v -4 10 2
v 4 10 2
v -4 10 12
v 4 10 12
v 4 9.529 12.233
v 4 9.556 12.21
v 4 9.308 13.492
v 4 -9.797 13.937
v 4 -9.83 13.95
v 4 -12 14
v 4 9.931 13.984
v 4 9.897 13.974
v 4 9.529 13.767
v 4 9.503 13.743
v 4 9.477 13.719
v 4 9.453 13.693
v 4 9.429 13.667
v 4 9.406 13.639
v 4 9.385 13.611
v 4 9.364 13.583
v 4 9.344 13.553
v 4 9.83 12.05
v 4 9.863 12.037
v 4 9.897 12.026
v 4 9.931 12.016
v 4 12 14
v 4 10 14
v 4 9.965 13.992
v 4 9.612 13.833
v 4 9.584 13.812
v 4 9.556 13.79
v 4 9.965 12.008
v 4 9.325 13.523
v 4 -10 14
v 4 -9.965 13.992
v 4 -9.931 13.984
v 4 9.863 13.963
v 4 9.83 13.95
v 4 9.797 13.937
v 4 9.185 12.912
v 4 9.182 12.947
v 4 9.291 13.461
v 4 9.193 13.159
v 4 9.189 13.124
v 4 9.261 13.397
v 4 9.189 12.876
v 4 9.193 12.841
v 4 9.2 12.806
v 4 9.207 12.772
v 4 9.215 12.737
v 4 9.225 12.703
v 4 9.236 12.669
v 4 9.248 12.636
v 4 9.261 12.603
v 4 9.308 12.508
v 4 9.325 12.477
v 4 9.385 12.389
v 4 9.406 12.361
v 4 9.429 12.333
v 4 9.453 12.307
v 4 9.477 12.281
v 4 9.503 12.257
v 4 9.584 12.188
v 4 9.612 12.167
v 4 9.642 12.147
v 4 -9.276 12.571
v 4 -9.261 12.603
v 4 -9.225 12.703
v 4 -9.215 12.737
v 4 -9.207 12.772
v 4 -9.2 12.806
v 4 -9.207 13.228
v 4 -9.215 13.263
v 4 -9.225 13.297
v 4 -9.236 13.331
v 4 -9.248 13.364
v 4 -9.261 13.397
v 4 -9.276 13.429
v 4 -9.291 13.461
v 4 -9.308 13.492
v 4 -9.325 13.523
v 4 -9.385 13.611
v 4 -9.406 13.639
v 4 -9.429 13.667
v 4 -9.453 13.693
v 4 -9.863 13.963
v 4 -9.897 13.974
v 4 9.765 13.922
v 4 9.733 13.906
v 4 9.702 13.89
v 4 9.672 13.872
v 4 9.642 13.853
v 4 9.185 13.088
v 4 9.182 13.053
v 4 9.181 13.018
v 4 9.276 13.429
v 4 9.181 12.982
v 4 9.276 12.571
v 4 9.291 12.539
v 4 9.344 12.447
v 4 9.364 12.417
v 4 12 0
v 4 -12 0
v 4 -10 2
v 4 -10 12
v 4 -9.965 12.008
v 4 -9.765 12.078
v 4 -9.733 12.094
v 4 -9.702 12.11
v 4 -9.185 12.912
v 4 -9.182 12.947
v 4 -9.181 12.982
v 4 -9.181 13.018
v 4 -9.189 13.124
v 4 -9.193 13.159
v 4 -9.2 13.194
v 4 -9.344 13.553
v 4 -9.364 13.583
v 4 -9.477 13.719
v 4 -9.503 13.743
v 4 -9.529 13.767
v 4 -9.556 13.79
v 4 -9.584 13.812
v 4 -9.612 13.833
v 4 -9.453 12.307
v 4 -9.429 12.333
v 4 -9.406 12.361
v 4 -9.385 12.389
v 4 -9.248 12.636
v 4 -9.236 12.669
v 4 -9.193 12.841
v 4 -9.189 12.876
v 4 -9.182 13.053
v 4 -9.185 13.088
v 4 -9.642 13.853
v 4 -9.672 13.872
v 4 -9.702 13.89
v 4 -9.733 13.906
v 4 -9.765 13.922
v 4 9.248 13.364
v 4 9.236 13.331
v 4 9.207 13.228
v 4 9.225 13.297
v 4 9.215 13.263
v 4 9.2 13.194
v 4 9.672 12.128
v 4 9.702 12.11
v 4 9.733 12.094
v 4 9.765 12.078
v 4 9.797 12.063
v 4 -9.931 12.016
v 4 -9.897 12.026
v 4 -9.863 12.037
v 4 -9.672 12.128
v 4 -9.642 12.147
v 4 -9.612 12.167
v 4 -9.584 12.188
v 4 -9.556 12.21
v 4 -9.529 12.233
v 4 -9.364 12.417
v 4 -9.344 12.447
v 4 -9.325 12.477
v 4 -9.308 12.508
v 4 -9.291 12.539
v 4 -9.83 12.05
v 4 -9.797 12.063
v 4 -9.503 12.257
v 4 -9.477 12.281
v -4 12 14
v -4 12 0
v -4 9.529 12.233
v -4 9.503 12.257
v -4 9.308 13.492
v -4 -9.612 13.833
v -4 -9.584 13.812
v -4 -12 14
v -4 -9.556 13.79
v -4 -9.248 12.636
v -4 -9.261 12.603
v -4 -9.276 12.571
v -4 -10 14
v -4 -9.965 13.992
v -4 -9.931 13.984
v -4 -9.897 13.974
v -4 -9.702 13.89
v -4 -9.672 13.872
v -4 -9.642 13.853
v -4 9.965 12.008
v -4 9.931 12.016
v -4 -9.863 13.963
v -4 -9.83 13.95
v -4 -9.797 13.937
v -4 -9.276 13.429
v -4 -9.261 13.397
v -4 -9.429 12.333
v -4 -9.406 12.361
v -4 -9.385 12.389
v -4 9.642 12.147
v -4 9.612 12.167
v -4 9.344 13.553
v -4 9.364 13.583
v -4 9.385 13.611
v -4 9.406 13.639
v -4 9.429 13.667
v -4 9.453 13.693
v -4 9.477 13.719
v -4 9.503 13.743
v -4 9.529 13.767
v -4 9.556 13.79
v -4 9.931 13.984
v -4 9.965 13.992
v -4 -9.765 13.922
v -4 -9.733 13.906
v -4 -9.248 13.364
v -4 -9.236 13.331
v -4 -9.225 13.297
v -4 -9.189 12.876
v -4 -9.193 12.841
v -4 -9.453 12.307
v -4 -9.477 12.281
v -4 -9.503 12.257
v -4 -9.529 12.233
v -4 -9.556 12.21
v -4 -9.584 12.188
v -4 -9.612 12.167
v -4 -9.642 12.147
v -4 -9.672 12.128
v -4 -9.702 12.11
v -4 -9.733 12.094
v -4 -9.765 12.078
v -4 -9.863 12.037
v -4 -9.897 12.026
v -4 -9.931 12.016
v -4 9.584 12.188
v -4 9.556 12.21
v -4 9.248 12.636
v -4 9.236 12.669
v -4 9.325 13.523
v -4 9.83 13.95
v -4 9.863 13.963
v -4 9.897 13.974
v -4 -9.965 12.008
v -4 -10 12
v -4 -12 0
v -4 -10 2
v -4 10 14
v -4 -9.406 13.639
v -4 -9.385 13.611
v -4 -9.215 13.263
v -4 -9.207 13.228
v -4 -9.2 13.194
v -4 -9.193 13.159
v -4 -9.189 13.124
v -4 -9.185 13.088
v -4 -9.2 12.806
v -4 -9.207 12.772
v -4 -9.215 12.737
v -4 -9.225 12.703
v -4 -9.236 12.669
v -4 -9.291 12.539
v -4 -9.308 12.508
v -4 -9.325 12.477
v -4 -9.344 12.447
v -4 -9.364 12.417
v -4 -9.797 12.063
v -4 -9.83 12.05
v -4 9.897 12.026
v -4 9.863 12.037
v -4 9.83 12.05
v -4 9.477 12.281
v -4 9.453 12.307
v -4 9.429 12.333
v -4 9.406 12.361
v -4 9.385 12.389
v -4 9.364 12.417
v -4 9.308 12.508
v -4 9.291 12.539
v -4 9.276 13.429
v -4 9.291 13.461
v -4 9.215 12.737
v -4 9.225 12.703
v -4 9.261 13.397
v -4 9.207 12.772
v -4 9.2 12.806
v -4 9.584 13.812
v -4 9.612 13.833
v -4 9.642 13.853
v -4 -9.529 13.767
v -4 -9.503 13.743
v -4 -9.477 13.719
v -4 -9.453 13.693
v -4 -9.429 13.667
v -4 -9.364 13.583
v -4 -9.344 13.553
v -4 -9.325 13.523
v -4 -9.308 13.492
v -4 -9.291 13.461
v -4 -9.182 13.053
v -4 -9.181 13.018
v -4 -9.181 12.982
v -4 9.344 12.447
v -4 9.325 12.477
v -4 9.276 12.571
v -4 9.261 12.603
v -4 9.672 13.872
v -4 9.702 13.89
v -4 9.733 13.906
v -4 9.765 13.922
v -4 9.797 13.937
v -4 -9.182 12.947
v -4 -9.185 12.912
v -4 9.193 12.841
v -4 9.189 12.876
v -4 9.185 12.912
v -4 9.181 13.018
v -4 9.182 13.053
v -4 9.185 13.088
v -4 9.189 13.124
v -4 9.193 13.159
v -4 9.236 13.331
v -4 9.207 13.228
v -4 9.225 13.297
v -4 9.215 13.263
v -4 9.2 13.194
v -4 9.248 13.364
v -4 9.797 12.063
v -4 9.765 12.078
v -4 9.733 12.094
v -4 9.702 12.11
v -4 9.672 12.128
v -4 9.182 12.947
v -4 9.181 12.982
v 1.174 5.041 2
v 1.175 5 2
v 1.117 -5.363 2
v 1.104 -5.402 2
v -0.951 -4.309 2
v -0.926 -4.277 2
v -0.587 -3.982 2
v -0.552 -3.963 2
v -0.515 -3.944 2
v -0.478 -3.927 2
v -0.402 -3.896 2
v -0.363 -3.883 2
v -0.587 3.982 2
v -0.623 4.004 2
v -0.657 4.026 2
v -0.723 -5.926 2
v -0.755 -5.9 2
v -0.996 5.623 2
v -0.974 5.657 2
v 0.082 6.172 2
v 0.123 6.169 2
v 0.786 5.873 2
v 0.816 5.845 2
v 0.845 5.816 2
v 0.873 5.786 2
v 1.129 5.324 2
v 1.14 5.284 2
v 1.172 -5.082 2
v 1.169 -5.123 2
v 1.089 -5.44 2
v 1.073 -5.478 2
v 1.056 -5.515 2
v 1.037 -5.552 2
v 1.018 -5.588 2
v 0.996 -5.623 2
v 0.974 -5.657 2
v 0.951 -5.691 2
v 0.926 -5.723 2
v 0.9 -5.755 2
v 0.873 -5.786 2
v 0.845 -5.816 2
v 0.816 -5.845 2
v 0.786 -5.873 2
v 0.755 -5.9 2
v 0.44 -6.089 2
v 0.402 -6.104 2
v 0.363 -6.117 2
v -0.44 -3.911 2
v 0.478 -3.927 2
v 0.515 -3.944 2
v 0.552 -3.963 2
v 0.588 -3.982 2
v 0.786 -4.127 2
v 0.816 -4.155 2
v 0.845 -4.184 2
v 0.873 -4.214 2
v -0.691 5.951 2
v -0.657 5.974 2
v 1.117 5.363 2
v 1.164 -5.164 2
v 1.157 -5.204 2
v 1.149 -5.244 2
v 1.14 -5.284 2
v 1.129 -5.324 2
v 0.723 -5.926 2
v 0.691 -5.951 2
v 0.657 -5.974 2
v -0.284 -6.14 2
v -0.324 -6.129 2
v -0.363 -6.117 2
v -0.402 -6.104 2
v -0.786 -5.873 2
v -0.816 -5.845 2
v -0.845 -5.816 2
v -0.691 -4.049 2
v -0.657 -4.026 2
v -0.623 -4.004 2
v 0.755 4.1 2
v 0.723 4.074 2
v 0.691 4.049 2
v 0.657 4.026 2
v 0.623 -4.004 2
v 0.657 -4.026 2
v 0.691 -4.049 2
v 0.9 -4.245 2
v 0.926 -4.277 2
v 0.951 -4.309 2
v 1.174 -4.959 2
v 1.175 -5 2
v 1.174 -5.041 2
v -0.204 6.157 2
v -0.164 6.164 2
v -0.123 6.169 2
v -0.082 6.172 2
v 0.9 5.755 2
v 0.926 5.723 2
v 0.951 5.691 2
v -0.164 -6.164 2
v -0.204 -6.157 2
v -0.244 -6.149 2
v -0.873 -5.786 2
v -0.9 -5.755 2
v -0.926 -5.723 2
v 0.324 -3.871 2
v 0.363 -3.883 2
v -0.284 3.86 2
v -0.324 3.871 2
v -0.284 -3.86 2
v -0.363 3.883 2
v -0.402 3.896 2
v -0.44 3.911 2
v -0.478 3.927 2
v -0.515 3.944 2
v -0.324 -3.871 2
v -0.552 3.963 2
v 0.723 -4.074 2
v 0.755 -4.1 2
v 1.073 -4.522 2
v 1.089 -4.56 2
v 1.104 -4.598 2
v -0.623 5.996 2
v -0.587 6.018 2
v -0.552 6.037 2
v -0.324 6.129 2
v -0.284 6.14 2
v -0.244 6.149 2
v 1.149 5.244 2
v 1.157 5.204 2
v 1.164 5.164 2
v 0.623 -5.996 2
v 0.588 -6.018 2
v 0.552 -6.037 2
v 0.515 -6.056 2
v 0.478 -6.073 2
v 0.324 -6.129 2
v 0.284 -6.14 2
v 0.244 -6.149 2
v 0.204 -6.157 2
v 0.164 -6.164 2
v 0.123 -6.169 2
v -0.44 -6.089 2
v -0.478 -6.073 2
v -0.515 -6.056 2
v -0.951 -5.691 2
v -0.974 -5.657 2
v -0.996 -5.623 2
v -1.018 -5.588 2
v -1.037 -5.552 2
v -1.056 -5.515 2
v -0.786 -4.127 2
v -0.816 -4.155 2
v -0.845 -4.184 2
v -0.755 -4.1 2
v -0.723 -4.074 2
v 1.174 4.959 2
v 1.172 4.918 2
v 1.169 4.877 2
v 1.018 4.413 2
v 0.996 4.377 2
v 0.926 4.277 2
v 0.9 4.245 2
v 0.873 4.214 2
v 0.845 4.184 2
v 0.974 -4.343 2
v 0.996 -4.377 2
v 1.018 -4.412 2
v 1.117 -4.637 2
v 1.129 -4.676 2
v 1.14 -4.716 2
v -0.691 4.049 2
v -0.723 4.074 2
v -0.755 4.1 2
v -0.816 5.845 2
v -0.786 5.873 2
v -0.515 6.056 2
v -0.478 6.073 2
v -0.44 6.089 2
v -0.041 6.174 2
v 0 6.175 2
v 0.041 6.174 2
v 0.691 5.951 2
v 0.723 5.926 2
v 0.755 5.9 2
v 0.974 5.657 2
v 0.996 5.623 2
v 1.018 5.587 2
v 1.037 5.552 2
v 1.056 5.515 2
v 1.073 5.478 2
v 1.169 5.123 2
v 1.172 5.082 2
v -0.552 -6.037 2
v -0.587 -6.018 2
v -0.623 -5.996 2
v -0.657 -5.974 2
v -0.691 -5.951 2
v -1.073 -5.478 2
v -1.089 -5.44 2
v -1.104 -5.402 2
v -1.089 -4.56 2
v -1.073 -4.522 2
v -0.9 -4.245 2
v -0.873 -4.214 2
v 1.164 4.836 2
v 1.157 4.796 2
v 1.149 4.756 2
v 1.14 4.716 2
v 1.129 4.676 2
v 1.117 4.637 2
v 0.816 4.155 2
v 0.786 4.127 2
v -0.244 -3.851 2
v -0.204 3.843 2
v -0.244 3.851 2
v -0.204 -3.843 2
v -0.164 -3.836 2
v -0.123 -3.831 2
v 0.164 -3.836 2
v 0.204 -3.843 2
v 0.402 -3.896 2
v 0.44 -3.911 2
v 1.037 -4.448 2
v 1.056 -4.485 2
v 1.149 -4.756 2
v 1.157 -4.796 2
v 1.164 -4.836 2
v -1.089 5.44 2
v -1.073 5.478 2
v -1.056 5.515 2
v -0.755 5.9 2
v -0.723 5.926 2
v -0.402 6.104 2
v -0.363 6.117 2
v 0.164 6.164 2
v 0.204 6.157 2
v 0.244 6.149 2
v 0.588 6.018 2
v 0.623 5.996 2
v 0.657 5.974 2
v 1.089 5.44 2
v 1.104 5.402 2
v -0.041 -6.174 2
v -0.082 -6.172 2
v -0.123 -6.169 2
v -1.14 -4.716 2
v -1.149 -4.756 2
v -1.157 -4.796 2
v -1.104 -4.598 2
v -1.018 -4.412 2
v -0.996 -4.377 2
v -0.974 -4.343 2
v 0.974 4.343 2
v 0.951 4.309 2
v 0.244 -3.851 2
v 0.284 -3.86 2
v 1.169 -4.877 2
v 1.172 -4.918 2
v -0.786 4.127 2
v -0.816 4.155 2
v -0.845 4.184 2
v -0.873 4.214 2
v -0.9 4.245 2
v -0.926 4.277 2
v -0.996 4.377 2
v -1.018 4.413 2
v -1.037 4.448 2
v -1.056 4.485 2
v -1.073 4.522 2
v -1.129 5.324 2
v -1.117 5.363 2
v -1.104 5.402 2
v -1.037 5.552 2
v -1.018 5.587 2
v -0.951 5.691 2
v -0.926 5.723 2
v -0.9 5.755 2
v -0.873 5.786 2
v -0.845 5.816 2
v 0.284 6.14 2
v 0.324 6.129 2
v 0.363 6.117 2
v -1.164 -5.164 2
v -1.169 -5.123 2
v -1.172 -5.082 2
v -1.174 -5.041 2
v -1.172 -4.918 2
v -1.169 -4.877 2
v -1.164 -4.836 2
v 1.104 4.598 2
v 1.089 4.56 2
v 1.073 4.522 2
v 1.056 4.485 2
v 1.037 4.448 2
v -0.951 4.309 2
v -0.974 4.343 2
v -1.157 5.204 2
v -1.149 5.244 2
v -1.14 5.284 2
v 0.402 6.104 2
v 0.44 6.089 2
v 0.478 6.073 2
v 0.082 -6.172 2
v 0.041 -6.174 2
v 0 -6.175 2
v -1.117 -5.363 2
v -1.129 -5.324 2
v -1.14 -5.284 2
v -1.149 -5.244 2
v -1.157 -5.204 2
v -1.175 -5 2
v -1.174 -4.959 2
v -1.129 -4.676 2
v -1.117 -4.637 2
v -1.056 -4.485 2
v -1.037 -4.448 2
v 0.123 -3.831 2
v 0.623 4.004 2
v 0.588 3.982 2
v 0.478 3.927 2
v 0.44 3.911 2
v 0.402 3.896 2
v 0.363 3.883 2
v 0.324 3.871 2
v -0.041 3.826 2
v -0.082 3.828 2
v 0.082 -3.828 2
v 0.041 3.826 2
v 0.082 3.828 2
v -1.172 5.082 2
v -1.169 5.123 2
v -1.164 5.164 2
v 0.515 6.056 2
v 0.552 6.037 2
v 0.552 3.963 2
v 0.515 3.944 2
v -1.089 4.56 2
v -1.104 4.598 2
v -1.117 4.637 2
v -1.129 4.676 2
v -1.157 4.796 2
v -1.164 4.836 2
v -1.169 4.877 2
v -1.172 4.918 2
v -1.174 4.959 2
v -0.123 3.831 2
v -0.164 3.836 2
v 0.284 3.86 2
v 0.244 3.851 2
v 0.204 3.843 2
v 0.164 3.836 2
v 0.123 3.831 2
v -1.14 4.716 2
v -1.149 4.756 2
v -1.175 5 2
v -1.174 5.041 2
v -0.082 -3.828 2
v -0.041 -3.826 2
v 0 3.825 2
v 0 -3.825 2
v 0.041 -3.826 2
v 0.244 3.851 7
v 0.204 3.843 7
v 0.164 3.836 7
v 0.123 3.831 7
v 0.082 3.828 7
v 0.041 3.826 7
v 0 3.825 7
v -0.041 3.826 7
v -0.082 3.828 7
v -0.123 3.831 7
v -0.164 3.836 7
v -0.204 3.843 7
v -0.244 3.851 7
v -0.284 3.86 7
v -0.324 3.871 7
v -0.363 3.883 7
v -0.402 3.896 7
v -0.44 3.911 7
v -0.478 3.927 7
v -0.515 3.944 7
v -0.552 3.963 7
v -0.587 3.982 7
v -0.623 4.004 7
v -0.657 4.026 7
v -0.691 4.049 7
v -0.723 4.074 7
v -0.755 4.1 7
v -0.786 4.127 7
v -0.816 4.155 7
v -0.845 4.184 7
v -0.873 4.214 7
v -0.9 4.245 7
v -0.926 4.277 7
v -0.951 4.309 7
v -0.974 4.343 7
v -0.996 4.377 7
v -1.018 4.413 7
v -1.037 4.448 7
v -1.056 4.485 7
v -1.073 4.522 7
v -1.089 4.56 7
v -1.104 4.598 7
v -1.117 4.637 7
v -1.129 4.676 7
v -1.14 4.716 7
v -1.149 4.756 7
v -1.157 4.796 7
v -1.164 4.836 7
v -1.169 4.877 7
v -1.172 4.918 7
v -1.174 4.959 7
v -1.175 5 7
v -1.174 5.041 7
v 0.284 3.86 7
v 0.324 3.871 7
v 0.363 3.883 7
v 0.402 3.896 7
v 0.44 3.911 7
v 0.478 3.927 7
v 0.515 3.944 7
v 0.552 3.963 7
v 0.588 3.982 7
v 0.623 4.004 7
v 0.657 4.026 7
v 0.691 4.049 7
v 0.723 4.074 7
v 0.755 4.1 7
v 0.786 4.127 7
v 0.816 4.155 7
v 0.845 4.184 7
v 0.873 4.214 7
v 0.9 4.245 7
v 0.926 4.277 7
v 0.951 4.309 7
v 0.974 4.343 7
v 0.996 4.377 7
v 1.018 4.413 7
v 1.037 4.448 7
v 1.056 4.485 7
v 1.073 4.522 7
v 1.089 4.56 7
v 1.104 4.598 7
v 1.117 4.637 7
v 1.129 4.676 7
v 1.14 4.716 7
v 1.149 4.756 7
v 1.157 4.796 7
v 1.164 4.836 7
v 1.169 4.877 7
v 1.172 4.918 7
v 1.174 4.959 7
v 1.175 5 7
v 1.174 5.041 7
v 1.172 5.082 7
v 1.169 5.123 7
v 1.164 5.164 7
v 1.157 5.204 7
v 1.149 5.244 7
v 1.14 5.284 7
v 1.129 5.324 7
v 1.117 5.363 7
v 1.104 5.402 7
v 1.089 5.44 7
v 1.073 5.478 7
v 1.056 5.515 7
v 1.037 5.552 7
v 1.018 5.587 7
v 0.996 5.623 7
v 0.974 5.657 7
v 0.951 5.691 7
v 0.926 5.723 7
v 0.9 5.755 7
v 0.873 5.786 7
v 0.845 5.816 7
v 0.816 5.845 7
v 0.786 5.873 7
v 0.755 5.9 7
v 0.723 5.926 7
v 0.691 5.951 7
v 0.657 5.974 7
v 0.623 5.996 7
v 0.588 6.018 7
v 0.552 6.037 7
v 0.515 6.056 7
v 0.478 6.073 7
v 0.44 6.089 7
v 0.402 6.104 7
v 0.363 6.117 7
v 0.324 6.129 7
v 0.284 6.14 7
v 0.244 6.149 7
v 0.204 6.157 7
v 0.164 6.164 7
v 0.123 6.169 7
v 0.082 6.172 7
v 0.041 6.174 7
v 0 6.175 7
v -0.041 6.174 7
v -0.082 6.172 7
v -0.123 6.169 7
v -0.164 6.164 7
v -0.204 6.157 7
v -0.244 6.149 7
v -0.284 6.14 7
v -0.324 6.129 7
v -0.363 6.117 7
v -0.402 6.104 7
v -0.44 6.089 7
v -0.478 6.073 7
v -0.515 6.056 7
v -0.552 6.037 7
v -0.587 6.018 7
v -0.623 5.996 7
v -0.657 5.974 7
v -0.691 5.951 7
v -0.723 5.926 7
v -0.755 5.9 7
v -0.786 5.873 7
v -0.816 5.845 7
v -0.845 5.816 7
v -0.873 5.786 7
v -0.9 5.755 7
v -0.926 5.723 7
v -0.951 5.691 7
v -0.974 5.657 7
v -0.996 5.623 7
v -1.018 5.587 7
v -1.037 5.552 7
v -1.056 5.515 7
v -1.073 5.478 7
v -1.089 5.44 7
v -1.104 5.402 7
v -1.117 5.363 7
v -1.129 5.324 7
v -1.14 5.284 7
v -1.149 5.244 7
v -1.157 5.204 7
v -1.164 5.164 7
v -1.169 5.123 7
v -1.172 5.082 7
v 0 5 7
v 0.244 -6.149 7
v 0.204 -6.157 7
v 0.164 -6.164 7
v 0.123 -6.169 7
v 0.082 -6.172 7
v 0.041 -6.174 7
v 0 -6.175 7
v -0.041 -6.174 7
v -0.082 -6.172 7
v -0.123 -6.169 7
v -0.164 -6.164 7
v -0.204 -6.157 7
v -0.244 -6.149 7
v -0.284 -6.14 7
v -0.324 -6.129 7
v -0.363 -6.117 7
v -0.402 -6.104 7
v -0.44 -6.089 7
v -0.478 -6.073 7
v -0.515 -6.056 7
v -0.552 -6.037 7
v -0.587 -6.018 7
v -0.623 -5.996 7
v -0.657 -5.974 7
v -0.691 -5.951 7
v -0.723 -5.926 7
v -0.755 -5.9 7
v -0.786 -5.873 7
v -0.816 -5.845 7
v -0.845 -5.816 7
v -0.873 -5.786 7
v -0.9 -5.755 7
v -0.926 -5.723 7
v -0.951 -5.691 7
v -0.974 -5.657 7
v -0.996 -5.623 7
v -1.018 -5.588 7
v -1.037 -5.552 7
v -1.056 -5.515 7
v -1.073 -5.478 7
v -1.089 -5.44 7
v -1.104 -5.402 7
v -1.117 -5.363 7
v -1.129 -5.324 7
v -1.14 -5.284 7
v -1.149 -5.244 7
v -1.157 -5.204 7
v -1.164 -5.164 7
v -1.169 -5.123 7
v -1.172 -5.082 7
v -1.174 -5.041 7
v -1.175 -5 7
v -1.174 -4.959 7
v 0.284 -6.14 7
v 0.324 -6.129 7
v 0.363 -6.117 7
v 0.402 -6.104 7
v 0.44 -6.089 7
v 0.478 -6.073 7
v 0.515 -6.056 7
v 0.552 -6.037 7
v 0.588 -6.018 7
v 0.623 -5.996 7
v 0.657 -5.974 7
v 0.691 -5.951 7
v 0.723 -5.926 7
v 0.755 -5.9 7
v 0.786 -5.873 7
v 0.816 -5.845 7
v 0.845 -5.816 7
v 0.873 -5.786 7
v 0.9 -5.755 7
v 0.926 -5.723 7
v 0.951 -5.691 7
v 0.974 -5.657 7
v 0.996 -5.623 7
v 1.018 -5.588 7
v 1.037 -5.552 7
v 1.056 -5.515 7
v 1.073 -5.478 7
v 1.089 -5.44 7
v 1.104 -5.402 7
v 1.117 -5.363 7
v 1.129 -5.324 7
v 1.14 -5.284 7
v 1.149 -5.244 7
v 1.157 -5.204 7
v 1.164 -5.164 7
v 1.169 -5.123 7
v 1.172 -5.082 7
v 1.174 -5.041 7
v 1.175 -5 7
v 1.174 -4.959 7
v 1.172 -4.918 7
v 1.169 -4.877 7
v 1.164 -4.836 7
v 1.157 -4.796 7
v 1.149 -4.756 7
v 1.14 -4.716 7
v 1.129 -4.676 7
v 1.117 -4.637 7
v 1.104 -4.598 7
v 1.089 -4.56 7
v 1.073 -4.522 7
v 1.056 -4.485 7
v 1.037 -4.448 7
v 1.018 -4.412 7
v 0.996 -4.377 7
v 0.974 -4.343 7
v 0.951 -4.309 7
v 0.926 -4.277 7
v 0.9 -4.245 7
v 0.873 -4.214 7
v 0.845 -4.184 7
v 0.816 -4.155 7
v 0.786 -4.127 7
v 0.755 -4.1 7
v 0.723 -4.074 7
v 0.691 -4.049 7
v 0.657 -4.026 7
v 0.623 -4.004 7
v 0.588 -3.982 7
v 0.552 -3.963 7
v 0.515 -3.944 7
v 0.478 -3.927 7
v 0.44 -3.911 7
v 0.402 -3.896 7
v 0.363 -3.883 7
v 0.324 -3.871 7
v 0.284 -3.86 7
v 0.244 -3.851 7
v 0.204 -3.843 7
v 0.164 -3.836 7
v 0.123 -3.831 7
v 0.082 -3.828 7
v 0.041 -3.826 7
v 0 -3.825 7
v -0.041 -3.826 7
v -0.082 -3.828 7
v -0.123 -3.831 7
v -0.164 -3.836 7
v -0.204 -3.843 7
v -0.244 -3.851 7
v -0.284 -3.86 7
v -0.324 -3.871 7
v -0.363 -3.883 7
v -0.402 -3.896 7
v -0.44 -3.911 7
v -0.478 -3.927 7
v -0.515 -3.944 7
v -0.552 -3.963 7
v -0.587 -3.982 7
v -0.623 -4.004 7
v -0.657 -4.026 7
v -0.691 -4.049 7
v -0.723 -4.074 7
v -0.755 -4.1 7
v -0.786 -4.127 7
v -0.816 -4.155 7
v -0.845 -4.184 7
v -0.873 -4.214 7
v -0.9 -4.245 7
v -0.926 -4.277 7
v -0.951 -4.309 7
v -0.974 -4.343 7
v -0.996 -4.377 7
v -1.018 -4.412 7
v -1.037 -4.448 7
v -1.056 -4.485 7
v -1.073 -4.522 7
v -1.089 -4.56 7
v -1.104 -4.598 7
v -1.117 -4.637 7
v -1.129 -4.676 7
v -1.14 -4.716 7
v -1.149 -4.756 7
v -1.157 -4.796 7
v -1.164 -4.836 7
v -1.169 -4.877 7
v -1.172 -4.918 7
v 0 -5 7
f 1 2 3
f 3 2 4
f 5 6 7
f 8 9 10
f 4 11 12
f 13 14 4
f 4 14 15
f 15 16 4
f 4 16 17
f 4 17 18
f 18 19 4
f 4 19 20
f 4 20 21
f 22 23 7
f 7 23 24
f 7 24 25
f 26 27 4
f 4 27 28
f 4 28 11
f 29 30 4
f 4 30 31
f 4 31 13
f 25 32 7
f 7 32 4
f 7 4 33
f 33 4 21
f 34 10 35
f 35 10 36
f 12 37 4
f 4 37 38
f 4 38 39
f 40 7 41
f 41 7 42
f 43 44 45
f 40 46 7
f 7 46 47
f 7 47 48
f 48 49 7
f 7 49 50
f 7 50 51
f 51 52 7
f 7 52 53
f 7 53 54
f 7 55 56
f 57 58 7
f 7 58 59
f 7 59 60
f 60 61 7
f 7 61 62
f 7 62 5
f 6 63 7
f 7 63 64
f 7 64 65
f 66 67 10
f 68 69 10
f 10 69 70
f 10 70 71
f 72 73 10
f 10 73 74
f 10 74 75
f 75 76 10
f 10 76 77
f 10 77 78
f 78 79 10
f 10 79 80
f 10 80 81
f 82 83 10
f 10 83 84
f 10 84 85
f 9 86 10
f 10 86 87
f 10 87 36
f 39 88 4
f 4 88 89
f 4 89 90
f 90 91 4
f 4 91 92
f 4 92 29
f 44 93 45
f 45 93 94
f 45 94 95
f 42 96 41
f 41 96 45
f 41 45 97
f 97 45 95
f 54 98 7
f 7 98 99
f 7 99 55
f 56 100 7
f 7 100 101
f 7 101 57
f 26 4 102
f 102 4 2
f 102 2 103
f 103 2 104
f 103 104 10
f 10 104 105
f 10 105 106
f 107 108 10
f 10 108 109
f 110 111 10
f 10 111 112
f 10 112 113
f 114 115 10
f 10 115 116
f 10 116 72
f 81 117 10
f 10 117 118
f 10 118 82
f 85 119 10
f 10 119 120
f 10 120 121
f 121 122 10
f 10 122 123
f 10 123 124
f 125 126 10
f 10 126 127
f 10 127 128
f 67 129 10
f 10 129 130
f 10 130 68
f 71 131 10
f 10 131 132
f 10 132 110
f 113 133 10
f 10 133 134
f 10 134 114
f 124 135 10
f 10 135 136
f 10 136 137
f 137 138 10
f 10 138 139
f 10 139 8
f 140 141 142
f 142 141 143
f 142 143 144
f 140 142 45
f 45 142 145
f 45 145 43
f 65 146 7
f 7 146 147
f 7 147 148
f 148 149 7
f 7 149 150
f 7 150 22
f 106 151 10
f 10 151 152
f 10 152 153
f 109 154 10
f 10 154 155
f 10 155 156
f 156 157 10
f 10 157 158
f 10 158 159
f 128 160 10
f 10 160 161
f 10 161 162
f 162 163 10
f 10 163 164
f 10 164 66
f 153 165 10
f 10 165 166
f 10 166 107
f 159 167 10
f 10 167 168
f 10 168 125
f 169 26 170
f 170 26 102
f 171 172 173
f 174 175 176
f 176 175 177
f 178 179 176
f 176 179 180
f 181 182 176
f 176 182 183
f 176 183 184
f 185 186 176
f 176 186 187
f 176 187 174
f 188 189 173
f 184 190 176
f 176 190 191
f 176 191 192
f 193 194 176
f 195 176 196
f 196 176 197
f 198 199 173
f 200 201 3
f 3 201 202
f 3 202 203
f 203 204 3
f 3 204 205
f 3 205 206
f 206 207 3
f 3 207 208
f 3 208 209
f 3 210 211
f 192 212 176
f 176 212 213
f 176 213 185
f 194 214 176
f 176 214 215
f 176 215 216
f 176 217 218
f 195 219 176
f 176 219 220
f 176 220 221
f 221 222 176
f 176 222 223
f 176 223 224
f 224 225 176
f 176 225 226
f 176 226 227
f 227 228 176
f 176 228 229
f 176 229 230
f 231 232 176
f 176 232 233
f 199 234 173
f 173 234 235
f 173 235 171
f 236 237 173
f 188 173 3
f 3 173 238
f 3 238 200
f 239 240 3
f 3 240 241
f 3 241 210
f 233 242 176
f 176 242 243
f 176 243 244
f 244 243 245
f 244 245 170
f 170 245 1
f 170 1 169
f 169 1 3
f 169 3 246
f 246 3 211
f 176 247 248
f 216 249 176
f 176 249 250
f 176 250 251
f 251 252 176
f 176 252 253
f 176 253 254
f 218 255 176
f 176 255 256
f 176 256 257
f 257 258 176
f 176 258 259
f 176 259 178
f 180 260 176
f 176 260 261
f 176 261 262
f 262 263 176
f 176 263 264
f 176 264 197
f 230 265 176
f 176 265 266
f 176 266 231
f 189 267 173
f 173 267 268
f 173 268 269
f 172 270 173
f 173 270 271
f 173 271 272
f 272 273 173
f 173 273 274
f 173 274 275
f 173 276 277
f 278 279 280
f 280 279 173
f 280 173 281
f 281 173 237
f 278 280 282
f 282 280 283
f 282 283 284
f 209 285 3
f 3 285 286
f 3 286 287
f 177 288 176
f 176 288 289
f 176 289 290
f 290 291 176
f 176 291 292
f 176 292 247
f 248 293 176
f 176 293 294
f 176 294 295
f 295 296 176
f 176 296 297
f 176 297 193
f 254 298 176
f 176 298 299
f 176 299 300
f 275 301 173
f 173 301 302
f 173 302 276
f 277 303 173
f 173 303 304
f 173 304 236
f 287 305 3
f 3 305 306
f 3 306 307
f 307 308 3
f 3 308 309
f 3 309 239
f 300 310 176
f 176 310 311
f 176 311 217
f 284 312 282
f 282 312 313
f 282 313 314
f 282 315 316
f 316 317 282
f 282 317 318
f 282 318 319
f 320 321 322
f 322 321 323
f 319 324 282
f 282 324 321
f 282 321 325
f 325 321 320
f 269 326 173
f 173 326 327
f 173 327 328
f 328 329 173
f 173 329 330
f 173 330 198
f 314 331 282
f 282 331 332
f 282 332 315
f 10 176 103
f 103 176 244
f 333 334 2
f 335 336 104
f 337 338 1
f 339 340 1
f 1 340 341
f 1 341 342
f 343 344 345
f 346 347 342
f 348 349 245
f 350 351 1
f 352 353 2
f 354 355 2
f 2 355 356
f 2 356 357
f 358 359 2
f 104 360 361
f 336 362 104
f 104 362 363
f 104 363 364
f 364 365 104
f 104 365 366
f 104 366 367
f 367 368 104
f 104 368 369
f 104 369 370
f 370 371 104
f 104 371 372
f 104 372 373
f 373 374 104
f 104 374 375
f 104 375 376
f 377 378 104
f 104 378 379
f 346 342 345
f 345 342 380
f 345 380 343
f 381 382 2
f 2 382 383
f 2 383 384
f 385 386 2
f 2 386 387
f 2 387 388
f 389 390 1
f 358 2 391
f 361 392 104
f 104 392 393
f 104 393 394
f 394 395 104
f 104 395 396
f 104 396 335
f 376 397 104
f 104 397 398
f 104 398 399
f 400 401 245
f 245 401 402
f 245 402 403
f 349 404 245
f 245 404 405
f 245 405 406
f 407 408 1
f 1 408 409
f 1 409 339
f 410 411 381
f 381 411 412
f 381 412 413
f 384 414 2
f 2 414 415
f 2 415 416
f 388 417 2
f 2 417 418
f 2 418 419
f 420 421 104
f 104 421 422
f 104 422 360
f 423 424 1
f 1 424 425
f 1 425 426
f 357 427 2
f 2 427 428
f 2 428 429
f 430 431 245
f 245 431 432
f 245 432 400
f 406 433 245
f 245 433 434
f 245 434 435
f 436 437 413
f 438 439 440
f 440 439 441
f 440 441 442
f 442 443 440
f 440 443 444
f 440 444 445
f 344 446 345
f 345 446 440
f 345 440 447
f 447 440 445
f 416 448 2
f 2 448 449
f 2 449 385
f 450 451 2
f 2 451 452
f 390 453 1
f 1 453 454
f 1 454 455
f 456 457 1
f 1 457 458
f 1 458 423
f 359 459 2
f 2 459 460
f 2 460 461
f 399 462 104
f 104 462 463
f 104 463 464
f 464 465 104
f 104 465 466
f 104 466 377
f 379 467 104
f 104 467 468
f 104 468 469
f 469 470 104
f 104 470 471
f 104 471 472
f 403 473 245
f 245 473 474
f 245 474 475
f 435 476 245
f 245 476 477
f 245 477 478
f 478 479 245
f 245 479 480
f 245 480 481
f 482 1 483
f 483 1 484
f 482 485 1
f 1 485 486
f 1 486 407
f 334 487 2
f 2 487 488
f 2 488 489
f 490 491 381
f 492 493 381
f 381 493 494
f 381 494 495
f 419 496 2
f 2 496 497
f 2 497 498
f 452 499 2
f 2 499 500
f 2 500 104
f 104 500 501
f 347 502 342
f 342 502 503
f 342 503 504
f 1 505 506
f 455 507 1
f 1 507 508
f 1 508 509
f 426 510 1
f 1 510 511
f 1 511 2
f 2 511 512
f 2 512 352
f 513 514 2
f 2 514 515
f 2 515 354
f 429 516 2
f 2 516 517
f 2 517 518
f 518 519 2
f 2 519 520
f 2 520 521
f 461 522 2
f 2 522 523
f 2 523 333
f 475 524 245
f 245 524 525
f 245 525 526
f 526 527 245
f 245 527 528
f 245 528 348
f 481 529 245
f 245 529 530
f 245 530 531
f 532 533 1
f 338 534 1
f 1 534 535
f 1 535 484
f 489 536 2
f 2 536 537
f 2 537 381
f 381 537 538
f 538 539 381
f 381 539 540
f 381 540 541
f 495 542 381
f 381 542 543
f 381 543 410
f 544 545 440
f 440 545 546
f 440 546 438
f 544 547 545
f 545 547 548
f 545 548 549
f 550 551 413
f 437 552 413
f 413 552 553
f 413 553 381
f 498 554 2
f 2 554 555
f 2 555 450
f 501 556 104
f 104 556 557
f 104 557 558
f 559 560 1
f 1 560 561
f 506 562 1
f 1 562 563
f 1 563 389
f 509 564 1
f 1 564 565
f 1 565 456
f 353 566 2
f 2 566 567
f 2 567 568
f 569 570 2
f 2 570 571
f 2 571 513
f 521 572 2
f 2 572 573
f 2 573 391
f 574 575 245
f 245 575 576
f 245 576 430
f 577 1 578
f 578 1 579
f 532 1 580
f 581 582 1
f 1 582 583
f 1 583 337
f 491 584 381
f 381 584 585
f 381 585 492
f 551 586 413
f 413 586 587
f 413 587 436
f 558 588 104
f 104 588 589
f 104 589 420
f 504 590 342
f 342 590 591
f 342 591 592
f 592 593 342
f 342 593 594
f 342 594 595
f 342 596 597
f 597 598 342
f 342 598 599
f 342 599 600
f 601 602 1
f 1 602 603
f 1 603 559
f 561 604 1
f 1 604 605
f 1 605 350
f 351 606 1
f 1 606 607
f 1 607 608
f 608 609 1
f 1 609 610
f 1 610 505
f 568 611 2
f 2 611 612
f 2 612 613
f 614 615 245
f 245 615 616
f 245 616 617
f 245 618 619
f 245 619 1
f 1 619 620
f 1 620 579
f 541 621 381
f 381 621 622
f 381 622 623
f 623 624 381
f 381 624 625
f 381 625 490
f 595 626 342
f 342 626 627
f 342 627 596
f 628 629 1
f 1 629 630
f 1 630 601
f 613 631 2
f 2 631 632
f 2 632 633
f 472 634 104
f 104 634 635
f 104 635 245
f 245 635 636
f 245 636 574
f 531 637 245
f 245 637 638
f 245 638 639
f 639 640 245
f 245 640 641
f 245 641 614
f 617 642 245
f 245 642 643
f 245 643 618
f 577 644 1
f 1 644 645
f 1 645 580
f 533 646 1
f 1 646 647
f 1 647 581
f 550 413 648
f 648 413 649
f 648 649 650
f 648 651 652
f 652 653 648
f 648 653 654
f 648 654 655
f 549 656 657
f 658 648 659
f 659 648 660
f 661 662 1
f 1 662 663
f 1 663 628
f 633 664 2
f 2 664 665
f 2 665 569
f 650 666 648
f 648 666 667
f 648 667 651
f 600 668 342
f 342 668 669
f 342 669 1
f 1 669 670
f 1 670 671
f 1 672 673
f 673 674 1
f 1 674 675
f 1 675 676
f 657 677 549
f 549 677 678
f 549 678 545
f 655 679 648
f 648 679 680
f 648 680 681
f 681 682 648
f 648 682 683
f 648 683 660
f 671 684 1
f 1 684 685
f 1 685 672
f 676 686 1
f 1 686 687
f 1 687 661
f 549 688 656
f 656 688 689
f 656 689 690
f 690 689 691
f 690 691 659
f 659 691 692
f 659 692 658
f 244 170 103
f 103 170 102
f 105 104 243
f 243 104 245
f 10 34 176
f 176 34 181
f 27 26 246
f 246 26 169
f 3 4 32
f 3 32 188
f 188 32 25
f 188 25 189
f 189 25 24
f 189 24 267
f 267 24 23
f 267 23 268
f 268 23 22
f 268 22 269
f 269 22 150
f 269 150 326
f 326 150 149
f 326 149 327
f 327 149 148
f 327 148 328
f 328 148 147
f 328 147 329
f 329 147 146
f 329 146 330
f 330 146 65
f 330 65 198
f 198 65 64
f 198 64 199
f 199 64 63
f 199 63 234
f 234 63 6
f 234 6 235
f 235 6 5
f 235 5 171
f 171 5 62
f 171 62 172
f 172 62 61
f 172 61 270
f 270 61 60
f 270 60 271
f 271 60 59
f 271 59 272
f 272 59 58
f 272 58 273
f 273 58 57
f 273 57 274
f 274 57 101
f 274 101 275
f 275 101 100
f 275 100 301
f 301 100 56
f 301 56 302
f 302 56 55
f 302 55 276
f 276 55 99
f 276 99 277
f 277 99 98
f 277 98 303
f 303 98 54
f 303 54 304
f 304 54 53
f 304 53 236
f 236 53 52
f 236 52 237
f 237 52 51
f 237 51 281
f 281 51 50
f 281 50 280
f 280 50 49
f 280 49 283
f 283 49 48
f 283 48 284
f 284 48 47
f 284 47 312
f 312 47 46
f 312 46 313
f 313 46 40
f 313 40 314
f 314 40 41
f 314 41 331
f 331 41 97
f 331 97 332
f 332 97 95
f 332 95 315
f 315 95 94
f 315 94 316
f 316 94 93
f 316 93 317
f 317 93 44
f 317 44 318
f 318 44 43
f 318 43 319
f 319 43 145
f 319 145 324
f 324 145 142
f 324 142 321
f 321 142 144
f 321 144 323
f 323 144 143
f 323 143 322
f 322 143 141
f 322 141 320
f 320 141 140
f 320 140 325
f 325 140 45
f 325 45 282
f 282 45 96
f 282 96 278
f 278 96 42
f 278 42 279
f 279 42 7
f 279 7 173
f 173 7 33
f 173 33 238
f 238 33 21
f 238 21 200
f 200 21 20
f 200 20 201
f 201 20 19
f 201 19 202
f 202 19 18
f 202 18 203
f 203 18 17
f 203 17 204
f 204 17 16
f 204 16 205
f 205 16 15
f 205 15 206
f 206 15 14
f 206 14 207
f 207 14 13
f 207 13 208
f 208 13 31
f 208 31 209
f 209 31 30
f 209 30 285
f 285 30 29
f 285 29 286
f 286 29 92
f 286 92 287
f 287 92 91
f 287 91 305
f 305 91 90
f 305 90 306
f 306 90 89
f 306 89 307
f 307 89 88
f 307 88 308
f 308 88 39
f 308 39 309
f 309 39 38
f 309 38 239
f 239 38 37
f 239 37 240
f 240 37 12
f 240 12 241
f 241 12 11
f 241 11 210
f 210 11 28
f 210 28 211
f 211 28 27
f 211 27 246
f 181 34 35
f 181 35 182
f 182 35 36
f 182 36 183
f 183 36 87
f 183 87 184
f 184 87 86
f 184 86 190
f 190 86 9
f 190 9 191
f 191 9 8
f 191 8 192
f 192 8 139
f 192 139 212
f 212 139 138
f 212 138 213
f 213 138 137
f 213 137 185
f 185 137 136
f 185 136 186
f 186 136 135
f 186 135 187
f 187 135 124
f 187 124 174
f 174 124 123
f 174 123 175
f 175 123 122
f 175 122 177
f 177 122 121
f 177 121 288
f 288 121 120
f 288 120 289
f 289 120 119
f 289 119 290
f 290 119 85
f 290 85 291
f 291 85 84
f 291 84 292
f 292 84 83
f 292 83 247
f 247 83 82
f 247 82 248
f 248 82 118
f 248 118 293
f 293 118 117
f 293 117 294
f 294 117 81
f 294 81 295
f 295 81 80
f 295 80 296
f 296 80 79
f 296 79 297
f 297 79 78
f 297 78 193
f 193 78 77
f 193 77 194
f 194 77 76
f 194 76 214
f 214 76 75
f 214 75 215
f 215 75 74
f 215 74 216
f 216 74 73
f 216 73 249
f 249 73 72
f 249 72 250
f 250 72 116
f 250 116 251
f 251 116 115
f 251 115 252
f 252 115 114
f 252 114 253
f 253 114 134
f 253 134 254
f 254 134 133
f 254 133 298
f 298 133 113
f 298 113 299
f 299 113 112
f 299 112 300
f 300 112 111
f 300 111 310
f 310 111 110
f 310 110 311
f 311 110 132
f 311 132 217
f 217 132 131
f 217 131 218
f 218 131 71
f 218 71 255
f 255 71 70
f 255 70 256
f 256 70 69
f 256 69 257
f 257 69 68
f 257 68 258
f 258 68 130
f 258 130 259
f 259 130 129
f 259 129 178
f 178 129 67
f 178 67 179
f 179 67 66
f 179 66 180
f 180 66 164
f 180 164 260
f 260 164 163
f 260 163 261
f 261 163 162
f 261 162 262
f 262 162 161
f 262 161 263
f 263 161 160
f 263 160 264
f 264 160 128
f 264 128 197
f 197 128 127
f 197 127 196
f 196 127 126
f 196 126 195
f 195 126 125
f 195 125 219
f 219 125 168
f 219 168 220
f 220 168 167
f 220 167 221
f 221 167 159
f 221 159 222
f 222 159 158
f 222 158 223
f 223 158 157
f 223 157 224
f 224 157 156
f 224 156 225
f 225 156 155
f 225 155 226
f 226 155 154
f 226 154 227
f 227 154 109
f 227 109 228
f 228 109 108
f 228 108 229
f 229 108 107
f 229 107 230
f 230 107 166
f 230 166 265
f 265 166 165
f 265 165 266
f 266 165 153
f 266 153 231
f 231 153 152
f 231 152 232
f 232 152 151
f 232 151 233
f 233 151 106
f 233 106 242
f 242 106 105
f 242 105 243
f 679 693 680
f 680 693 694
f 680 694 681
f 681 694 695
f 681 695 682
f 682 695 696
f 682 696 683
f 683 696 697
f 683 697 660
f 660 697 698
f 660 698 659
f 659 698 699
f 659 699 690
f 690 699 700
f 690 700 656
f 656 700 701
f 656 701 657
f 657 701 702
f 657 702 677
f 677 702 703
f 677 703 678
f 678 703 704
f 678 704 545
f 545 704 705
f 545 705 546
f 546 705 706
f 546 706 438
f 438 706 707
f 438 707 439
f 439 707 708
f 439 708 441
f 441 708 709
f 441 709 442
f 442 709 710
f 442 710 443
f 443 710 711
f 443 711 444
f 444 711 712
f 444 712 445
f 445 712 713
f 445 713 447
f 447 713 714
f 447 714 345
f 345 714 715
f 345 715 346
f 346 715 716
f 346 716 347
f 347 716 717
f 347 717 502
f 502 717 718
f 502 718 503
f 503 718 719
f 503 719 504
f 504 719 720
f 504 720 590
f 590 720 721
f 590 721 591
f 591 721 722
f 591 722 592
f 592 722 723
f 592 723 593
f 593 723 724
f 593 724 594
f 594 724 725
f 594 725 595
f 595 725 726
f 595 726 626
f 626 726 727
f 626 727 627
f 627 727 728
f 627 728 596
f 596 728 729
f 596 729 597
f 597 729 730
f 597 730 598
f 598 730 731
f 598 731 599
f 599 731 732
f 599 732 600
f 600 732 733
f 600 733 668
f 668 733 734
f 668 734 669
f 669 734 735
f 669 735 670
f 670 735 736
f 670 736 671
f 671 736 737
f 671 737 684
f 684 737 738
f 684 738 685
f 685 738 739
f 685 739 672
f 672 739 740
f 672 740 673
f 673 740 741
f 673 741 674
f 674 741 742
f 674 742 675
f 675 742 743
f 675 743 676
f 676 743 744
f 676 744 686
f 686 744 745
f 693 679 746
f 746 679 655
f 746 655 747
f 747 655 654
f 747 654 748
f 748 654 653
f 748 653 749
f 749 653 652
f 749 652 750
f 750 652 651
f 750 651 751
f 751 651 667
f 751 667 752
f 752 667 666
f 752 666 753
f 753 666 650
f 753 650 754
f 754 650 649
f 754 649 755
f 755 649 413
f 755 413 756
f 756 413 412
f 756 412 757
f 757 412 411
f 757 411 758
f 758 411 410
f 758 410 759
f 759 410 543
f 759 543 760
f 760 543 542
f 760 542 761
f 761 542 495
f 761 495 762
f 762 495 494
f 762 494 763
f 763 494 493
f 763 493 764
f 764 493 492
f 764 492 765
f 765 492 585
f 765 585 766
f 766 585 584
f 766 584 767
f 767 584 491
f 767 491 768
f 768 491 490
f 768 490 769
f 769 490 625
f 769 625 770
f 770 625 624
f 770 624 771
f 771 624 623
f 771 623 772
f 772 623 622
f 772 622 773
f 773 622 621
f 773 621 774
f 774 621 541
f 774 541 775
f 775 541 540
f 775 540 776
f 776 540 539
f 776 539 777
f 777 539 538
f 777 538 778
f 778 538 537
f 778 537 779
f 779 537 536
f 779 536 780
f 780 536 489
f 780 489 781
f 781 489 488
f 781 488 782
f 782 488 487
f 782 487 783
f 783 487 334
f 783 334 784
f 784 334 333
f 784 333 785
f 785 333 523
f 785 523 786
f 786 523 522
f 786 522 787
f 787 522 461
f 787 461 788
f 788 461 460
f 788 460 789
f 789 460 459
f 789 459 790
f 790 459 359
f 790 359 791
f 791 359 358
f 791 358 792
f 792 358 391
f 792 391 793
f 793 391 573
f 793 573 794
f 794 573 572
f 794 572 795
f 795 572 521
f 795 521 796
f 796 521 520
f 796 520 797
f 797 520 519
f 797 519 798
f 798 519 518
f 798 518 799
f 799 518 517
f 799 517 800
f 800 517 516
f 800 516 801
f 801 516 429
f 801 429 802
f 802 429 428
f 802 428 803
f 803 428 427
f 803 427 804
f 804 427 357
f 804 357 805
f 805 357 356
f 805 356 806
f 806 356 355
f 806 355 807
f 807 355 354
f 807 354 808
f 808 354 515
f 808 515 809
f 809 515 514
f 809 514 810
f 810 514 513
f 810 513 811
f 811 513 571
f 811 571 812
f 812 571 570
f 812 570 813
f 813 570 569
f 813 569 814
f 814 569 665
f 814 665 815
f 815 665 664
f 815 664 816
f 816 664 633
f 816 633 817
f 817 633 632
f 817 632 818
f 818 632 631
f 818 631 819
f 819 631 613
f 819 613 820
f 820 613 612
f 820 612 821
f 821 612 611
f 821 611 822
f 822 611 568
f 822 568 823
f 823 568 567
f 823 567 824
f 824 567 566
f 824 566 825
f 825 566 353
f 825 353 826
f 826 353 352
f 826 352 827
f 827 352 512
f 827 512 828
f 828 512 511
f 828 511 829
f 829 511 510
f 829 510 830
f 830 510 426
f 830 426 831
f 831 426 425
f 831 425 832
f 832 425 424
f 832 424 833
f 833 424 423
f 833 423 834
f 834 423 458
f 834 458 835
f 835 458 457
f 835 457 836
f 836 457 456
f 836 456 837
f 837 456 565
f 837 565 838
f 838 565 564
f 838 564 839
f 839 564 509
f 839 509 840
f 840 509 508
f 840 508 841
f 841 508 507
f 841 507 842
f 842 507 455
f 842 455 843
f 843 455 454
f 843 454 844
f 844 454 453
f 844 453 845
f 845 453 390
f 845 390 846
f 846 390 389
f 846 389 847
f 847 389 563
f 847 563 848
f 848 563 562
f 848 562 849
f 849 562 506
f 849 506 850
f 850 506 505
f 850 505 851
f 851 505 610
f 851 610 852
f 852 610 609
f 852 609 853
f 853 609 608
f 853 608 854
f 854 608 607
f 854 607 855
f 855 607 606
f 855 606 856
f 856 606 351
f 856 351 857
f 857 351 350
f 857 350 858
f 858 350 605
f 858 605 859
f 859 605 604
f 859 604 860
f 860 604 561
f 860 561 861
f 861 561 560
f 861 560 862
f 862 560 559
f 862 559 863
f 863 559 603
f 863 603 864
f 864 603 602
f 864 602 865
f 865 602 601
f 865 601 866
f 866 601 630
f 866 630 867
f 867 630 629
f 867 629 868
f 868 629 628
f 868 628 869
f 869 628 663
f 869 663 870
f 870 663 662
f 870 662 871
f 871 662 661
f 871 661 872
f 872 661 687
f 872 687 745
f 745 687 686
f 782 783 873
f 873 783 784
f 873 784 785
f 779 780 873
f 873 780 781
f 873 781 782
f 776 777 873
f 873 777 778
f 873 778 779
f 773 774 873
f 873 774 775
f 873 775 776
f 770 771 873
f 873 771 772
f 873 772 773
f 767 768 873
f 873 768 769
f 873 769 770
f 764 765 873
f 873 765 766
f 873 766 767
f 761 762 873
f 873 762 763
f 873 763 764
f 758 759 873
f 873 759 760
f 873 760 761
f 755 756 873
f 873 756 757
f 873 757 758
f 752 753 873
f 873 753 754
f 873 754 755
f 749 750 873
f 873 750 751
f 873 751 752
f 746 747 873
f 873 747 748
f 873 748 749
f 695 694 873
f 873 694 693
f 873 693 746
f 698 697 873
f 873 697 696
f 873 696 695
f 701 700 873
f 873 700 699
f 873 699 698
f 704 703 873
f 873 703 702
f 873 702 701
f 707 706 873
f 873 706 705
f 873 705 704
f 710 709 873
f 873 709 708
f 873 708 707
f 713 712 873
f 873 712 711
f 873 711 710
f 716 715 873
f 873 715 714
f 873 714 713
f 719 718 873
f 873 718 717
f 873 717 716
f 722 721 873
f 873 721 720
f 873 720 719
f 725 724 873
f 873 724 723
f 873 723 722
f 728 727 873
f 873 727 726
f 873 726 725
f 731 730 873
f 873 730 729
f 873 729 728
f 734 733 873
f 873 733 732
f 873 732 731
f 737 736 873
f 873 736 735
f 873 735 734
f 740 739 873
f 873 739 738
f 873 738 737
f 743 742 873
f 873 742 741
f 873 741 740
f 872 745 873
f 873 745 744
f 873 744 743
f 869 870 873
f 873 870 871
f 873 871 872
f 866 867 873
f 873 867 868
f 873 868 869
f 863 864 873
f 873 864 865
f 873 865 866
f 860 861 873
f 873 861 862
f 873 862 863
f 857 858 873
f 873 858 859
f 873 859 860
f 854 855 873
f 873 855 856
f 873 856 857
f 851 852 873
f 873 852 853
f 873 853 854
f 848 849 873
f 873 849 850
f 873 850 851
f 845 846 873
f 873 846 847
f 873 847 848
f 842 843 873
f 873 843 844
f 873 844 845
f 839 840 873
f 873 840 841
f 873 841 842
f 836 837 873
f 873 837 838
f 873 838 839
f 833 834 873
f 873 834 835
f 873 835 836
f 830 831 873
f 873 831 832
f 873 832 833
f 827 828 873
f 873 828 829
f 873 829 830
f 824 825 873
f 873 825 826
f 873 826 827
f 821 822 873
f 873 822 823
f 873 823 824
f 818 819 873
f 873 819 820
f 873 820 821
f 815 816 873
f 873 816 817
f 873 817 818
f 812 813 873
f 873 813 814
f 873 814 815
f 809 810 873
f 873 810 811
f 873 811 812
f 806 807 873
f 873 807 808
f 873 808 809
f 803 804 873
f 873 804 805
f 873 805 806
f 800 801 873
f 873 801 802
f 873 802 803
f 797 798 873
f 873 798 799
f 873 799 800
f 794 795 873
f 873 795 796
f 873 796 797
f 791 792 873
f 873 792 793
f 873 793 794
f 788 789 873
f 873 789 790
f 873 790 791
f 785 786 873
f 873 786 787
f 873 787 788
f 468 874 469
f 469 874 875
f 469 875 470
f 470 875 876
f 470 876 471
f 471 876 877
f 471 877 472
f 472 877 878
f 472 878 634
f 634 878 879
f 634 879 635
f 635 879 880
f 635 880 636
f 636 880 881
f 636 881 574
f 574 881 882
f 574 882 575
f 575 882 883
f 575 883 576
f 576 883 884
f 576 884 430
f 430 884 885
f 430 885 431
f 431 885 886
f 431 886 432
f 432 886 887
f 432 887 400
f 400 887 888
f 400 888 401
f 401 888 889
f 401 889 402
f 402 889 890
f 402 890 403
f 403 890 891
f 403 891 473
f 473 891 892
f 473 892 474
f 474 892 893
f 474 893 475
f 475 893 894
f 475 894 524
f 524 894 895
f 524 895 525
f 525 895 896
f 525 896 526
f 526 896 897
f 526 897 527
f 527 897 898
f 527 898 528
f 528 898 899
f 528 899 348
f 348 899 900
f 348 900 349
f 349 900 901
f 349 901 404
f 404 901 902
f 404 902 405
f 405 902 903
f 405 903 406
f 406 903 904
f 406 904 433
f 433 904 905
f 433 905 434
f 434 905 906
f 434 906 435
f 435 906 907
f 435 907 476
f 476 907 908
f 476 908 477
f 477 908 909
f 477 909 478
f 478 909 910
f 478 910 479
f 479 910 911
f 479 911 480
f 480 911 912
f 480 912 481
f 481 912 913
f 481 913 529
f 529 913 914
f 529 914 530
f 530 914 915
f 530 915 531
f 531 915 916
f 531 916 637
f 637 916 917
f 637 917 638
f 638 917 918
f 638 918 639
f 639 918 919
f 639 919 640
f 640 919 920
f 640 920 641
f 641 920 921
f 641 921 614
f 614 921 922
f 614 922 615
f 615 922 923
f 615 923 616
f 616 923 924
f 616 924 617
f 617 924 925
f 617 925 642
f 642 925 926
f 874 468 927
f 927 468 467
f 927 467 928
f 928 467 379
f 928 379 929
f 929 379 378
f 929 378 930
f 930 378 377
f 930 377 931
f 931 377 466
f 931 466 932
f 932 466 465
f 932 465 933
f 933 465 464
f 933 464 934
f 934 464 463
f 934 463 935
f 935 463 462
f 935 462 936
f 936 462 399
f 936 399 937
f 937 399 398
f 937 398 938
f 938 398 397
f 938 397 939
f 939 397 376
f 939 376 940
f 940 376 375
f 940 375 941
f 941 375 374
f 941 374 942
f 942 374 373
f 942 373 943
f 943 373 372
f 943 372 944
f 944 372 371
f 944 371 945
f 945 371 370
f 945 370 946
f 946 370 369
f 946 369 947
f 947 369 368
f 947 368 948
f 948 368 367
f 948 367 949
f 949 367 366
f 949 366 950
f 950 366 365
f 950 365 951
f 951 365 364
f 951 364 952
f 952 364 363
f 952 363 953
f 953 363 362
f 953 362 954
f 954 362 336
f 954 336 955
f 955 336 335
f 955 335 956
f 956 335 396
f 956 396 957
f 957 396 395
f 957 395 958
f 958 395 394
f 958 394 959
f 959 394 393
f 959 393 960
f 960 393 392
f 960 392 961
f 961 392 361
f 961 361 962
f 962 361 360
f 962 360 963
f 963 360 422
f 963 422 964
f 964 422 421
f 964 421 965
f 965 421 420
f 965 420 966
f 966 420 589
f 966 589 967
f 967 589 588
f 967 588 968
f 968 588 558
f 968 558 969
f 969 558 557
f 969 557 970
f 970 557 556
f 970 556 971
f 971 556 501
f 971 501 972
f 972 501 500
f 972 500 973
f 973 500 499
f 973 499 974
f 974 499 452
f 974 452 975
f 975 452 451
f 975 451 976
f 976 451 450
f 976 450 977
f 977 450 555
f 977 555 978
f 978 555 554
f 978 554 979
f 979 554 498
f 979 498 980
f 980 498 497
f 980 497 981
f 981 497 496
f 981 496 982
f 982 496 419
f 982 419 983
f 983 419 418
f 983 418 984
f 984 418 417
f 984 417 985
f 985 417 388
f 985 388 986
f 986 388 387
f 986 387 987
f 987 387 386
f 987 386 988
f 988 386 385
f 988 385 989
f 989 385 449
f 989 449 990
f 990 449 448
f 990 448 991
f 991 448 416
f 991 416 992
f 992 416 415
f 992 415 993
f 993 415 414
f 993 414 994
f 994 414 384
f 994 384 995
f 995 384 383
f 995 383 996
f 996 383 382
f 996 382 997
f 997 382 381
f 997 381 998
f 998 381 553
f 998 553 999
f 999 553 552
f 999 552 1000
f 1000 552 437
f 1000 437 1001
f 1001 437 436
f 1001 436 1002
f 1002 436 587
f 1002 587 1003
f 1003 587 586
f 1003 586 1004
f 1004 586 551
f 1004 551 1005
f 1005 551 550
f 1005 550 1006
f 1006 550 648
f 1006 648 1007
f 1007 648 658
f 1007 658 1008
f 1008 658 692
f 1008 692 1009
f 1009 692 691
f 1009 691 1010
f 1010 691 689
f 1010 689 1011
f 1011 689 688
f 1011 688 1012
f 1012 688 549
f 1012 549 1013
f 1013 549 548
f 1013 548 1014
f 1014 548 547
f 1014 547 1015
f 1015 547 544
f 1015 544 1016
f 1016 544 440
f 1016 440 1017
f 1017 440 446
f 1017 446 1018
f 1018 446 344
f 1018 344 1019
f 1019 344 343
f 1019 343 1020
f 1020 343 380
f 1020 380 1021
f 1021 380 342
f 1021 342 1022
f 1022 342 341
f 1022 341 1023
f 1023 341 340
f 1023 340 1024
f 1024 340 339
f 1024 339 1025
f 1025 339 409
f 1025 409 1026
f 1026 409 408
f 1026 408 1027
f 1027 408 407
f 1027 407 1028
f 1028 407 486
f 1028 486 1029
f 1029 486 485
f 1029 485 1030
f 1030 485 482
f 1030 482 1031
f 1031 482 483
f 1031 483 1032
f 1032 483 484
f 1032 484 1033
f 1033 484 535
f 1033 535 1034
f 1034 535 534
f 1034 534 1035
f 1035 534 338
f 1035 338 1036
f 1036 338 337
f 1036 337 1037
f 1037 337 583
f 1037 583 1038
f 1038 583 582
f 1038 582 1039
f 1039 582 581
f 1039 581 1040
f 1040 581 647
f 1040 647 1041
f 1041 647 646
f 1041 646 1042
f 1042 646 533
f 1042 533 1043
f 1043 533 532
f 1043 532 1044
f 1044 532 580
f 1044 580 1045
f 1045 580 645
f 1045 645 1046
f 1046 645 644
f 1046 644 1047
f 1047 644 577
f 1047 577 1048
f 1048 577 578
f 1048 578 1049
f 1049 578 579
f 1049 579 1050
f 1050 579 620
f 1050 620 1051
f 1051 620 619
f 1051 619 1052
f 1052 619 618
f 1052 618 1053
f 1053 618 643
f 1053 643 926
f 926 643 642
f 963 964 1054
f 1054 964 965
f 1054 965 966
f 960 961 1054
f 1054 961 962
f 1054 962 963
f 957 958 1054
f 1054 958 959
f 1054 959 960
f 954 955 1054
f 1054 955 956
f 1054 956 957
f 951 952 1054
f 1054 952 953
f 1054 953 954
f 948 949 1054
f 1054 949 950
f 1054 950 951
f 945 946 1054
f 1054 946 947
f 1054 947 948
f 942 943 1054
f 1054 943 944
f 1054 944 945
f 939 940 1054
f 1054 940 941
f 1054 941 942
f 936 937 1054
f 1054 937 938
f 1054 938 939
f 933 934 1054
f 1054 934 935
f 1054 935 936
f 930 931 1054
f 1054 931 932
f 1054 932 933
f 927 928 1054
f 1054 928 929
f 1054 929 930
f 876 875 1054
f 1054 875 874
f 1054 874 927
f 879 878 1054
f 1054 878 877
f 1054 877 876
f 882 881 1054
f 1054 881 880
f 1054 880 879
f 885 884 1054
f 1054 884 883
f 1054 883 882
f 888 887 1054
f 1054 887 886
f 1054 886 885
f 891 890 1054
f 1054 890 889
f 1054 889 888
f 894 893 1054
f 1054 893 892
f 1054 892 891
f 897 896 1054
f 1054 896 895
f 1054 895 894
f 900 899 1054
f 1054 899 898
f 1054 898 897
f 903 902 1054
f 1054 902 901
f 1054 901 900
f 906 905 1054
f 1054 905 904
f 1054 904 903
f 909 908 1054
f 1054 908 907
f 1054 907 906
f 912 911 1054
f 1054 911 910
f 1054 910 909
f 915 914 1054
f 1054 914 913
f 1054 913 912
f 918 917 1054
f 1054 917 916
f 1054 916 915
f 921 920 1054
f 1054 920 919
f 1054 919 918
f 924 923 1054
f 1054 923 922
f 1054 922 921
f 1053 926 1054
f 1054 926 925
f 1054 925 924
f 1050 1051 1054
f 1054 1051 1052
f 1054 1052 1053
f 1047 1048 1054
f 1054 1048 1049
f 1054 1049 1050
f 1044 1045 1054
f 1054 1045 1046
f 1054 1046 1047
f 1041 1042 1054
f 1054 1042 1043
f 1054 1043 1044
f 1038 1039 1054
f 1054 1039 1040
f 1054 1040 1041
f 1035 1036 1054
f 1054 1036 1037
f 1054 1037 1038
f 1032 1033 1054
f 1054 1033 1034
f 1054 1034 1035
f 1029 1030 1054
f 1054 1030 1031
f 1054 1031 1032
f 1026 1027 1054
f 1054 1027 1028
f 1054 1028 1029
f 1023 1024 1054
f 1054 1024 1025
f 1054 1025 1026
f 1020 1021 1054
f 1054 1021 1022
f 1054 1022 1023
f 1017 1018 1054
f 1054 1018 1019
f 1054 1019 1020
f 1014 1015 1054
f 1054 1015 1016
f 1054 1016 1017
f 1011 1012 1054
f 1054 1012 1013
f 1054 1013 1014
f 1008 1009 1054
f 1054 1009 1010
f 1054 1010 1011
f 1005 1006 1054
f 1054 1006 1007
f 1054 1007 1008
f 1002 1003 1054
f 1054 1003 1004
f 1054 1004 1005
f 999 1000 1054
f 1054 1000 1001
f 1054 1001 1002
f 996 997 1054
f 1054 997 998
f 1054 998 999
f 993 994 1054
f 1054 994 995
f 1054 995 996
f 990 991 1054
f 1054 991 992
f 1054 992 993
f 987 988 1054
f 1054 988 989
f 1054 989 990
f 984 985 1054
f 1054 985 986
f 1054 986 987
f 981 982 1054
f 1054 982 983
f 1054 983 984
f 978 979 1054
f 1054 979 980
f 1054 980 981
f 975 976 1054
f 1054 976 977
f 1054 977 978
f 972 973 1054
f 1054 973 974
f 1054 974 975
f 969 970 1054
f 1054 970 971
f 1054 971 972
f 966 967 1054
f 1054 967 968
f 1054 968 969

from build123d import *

# Parameters (mm, degrees)
SKETCH1_W           = 8
SKETCH1_H           = 24
BOSS_EXTRUDE1_DEPTH = 2
SKETCH2_W           = 8
SKETCH2_H           = 2
BOSS_EXTRUDE2_DEPTH = 12
BOSS_EXTRUDE4_DEPTH = 8
SKETCH4_R           = 1.175
BOSS_EXTRUDE5_DEPTH = 5


with BuildPart() as part:
    # Sketch1 → Boss-Extrude1 (new body)
    with BuildSketch(Plane.XY):
        Rectangle(SKETCH1_W, SKETCH1_H)
    extrude(amount=BOSS_EXTRUDE1_DEPTH)

    # Sketch2 → Boss-Extrude2 (add)
    with BuildSketch(Plane.XY.offset(2)):
        with Locations((0, 11)):
            Rectangle(SKETCH2_W, SKETCH2_H)
        with Locations((0, -11)):
            Rectangle(SKETCH2_W, SKETCH2_H)
    extrude(amount=BOSS_EXTRUDE2_DEPTH)

    # Sketch3 → Boss-Extrude4 (add)
    with BuildSketch(Plane(origin=(4, 0, 0), x_dir=(0, 0, -1), z_dir=(1, 0, 0))):
        with BuildLine():
            ThreePointArc((-12, -10), (-13, -9.180997512), (-14, -10))
            Line((-14, -10), (-12, -10))
        make_face()
        with BuildLine():
            ThreePointArc((-12, 10), (-13, 9.180997512), (-14, 10))
            Line((-14, 10), (-12, 10))
        make_face()
    extrude(amount=-BOSS_EXTRUDE4_DEPTH)

    # Sketch4 → Boss-Extrude5 (add)
    with BuildSketch(Plane.XY.offset(2)):
        with Locations((0, -5)):
            Circle(SKETCH4_R)
        with Locations((0, 5)):
            Circle(SKETCH4_R)
    extrude(amount=BOSS_EXTRUDE5_DEPTH)


solid = part.part
